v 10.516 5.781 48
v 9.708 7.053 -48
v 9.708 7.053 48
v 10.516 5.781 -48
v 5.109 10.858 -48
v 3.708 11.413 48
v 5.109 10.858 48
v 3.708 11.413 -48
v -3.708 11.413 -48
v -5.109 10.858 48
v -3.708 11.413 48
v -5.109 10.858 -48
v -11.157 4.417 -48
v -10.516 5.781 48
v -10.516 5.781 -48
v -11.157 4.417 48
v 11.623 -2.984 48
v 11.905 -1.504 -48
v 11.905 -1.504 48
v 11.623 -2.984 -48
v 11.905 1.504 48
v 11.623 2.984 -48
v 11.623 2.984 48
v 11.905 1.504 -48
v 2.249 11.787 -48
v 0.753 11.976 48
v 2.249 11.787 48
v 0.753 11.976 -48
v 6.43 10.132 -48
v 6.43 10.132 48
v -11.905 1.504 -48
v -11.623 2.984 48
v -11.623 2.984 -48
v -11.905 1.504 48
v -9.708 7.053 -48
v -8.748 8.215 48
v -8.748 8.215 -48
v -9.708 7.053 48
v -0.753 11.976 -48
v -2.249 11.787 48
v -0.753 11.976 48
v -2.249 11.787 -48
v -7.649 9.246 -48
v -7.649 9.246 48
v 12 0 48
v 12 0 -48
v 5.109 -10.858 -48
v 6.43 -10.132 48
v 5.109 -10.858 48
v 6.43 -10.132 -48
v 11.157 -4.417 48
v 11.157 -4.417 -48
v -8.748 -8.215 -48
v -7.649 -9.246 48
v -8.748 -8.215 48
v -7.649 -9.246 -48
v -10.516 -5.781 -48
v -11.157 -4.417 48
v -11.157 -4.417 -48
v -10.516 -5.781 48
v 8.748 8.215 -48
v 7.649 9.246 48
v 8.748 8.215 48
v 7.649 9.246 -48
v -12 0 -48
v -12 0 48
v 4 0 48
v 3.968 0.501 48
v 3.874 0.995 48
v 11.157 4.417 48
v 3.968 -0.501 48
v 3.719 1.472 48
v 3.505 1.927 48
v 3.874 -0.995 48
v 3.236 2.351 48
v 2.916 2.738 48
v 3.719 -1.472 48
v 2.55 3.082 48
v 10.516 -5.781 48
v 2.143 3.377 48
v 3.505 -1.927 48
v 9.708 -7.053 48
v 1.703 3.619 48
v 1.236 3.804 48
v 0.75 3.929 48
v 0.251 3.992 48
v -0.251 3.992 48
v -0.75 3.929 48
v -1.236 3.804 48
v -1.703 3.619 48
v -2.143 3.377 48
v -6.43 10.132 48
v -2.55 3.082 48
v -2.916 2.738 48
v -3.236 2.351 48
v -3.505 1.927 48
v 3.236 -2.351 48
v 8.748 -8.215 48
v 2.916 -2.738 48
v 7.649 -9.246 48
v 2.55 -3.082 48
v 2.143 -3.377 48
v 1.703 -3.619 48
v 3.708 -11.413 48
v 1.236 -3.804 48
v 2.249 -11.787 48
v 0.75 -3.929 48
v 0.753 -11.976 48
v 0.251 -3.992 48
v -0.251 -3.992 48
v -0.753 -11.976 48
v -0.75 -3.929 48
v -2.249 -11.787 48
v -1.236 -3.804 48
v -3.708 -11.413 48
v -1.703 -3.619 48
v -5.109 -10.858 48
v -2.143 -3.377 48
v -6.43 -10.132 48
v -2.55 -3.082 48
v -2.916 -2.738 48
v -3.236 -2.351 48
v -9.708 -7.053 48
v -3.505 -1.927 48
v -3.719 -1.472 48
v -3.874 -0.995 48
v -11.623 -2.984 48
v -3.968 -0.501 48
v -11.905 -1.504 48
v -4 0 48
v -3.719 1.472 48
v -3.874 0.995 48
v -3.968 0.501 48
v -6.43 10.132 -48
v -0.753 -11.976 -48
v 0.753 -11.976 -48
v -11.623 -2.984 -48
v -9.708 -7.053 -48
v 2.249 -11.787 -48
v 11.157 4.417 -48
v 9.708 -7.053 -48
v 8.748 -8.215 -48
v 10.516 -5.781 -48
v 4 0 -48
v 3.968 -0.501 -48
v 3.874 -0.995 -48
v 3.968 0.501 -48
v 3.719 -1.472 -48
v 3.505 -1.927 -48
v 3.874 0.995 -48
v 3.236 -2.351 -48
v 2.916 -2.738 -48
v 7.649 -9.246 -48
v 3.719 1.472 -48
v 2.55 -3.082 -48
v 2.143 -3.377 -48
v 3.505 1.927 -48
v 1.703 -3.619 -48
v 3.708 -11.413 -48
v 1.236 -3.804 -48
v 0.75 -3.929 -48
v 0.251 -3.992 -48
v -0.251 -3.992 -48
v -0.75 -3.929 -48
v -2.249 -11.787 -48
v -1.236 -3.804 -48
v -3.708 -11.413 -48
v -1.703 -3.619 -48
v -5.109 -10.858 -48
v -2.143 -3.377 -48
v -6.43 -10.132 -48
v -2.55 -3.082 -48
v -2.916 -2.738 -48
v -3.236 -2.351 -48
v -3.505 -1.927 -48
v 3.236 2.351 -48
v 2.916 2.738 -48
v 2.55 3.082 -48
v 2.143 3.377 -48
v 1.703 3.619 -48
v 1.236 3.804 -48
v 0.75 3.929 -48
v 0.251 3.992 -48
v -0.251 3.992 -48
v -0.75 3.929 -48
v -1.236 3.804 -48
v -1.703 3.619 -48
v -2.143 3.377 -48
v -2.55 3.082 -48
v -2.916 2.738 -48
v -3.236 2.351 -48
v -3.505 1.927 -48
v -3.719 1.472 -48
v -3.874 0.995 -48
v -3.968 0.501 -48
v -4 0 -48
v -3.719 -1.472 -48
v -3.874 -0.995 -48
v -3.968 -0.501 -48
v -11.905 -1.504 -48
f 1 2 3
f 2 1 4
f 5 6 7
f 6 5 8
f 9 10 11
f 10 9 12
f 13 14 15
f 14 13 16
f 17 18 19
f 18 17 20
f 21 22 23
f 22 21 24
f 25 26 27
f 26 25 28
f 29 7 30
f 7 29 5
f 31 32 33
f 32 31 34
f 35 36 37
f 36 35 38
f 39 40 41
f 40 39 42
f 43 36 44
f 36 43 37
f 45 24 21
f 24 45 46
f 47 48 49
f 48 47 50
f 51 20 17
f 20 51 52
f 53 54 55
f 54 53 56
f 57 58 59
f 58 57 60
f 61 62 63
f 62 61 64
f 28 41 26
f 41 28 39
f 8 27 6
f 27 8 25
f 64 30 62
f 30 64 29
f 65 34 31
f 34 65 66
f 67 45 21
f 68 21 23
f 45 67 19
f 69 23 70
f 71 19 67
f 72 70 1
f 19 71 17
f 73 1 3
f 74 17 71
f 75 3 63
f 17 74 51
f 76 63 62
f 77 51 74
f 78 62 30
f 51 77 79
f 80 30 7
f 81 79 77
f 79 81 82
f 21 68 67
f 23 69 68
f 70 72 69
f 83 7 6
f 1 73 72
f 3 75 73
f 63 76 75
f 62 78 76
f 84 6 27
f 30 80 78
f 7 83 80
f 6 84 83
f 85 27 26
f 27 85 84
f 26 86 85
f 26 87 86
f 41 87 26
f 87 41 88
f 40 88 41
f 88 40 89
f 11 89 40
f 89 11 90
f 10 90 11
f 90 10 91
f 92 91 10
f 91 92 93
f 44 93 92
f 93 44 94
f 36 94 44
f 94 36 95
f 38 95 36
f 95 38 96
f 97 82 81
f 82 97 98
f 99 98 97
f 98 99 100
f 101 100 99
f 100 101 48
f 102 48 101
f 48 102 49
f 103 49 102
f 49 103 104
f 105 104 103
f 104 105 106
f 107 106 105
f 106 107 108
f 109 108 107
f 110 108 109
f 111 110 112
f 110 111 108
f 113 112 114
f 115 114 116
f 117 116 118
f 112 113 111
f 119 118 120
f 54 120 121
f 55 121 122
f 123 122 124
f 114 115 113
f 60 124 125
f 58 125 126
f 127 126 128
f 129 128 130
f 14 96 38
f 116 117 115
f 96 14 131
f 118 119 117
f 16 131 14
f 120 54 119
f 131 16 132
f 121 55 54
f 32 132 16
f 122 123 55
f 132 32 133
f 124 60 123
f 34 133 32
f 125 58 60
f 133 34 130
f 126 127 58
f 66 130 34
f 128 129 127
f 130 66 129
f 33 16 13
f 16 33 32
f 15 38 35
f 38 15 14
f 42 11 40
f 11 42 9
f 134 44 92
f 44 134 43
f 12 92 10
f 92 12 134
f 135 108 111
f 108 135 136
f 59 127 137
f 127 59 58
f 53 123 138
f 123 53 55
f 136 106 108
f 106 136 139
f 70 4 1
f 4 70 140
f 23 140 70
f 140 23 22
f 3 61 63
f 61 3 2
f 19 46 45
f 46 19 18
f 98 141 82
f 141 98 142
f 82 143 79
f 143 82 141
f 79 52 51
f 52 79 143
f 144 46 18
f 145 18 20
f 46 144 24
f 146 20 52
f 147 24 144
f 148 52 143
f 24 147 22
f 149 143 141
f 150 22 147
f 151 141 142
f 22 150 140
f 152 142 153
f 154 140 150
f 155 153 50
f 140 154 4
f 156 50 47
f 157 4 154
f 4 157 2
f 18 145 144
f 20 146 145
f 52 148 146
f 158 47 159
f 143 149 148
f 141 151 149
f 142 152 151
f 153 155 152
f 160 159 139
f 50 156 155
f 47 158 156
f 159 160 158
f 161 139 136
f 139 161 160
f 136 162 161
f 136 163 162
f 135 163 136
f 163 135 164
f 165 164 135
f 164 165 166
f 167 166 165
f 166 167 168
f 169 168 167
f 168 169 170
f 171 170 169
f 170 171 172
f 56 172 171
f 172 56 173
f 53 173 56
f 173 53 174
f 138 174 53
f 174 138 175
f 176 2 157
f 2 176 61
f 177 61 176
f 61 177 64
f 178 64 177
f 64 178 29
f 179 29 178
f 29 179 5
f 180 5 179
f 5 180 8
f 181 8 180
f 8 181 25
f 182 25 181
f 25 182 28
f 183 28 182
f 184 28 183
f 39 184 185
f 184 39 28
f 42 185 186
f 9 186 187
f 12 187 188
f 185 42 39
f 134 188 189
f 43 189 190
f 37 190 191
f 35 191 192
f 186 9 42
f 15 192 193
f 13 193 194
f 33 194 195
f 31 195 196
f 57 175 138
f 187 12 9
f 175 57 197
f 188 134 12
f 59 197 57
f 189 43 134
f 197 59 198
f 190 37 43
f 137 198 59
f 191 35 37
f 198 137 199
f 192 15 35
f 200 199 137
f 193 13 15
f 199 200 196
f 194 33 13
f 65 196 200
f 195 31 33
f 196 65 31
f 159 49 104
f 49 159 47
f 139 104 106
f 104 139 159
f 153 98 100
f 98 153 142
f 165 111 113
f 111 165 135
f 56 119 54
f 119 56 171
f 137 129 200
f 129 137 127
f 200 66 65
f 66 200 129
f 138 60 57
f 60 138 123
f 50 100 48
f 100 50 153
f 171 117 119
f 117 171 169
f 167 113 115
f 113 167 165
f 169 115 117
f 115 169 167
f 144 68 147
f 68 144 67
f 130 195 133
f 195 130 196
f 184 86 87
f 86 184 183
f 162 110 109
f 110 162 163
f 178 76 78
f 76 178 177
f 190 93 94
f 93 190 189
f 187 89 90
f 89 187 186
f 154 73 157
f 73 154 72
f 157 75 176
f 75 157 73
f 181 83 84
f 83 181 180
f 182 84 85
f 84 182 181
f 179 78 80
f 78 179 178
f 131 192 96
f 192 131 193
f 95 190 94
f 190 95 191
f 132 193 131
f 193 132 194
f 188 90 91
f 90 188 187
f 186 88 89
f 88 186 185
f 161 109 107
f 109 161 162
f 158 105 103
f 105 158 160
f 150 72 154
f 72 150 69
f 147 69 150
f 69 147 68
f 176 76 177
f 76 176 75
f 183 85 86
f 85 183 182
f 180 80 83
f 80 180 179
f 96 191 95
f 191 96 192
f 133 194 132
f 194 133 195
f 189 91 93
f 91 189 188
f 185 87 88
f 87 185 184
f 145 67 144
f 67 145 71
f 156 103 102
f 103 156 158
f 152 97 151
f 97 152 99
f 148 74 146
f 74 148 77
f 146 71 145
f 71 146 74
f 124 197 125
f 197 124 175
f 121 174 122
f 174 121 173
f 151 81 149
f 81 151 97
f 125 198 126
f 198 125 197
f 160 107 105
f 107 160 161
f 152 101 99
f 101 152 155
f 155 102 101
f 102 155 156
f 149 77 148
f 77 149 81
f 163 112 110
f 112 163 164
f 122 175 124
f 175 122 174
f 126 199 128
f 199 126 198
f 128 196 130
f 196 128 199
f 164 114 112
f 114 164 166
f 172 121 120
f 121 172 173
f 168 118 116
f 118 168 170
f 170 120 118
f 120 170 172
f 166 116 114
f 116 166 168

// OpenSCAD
$fn = 50;


difference() {
	union() {
		translate(v = [0, 0, -48.0000000000]) {
			cylinder(h = 96, r = 12.0000000000);
		}
	}
	union() {
		translate(v = [0, 0, -100.0000000000]) {
			cylinder(h = 200, r = 4);
		}
	}
}
